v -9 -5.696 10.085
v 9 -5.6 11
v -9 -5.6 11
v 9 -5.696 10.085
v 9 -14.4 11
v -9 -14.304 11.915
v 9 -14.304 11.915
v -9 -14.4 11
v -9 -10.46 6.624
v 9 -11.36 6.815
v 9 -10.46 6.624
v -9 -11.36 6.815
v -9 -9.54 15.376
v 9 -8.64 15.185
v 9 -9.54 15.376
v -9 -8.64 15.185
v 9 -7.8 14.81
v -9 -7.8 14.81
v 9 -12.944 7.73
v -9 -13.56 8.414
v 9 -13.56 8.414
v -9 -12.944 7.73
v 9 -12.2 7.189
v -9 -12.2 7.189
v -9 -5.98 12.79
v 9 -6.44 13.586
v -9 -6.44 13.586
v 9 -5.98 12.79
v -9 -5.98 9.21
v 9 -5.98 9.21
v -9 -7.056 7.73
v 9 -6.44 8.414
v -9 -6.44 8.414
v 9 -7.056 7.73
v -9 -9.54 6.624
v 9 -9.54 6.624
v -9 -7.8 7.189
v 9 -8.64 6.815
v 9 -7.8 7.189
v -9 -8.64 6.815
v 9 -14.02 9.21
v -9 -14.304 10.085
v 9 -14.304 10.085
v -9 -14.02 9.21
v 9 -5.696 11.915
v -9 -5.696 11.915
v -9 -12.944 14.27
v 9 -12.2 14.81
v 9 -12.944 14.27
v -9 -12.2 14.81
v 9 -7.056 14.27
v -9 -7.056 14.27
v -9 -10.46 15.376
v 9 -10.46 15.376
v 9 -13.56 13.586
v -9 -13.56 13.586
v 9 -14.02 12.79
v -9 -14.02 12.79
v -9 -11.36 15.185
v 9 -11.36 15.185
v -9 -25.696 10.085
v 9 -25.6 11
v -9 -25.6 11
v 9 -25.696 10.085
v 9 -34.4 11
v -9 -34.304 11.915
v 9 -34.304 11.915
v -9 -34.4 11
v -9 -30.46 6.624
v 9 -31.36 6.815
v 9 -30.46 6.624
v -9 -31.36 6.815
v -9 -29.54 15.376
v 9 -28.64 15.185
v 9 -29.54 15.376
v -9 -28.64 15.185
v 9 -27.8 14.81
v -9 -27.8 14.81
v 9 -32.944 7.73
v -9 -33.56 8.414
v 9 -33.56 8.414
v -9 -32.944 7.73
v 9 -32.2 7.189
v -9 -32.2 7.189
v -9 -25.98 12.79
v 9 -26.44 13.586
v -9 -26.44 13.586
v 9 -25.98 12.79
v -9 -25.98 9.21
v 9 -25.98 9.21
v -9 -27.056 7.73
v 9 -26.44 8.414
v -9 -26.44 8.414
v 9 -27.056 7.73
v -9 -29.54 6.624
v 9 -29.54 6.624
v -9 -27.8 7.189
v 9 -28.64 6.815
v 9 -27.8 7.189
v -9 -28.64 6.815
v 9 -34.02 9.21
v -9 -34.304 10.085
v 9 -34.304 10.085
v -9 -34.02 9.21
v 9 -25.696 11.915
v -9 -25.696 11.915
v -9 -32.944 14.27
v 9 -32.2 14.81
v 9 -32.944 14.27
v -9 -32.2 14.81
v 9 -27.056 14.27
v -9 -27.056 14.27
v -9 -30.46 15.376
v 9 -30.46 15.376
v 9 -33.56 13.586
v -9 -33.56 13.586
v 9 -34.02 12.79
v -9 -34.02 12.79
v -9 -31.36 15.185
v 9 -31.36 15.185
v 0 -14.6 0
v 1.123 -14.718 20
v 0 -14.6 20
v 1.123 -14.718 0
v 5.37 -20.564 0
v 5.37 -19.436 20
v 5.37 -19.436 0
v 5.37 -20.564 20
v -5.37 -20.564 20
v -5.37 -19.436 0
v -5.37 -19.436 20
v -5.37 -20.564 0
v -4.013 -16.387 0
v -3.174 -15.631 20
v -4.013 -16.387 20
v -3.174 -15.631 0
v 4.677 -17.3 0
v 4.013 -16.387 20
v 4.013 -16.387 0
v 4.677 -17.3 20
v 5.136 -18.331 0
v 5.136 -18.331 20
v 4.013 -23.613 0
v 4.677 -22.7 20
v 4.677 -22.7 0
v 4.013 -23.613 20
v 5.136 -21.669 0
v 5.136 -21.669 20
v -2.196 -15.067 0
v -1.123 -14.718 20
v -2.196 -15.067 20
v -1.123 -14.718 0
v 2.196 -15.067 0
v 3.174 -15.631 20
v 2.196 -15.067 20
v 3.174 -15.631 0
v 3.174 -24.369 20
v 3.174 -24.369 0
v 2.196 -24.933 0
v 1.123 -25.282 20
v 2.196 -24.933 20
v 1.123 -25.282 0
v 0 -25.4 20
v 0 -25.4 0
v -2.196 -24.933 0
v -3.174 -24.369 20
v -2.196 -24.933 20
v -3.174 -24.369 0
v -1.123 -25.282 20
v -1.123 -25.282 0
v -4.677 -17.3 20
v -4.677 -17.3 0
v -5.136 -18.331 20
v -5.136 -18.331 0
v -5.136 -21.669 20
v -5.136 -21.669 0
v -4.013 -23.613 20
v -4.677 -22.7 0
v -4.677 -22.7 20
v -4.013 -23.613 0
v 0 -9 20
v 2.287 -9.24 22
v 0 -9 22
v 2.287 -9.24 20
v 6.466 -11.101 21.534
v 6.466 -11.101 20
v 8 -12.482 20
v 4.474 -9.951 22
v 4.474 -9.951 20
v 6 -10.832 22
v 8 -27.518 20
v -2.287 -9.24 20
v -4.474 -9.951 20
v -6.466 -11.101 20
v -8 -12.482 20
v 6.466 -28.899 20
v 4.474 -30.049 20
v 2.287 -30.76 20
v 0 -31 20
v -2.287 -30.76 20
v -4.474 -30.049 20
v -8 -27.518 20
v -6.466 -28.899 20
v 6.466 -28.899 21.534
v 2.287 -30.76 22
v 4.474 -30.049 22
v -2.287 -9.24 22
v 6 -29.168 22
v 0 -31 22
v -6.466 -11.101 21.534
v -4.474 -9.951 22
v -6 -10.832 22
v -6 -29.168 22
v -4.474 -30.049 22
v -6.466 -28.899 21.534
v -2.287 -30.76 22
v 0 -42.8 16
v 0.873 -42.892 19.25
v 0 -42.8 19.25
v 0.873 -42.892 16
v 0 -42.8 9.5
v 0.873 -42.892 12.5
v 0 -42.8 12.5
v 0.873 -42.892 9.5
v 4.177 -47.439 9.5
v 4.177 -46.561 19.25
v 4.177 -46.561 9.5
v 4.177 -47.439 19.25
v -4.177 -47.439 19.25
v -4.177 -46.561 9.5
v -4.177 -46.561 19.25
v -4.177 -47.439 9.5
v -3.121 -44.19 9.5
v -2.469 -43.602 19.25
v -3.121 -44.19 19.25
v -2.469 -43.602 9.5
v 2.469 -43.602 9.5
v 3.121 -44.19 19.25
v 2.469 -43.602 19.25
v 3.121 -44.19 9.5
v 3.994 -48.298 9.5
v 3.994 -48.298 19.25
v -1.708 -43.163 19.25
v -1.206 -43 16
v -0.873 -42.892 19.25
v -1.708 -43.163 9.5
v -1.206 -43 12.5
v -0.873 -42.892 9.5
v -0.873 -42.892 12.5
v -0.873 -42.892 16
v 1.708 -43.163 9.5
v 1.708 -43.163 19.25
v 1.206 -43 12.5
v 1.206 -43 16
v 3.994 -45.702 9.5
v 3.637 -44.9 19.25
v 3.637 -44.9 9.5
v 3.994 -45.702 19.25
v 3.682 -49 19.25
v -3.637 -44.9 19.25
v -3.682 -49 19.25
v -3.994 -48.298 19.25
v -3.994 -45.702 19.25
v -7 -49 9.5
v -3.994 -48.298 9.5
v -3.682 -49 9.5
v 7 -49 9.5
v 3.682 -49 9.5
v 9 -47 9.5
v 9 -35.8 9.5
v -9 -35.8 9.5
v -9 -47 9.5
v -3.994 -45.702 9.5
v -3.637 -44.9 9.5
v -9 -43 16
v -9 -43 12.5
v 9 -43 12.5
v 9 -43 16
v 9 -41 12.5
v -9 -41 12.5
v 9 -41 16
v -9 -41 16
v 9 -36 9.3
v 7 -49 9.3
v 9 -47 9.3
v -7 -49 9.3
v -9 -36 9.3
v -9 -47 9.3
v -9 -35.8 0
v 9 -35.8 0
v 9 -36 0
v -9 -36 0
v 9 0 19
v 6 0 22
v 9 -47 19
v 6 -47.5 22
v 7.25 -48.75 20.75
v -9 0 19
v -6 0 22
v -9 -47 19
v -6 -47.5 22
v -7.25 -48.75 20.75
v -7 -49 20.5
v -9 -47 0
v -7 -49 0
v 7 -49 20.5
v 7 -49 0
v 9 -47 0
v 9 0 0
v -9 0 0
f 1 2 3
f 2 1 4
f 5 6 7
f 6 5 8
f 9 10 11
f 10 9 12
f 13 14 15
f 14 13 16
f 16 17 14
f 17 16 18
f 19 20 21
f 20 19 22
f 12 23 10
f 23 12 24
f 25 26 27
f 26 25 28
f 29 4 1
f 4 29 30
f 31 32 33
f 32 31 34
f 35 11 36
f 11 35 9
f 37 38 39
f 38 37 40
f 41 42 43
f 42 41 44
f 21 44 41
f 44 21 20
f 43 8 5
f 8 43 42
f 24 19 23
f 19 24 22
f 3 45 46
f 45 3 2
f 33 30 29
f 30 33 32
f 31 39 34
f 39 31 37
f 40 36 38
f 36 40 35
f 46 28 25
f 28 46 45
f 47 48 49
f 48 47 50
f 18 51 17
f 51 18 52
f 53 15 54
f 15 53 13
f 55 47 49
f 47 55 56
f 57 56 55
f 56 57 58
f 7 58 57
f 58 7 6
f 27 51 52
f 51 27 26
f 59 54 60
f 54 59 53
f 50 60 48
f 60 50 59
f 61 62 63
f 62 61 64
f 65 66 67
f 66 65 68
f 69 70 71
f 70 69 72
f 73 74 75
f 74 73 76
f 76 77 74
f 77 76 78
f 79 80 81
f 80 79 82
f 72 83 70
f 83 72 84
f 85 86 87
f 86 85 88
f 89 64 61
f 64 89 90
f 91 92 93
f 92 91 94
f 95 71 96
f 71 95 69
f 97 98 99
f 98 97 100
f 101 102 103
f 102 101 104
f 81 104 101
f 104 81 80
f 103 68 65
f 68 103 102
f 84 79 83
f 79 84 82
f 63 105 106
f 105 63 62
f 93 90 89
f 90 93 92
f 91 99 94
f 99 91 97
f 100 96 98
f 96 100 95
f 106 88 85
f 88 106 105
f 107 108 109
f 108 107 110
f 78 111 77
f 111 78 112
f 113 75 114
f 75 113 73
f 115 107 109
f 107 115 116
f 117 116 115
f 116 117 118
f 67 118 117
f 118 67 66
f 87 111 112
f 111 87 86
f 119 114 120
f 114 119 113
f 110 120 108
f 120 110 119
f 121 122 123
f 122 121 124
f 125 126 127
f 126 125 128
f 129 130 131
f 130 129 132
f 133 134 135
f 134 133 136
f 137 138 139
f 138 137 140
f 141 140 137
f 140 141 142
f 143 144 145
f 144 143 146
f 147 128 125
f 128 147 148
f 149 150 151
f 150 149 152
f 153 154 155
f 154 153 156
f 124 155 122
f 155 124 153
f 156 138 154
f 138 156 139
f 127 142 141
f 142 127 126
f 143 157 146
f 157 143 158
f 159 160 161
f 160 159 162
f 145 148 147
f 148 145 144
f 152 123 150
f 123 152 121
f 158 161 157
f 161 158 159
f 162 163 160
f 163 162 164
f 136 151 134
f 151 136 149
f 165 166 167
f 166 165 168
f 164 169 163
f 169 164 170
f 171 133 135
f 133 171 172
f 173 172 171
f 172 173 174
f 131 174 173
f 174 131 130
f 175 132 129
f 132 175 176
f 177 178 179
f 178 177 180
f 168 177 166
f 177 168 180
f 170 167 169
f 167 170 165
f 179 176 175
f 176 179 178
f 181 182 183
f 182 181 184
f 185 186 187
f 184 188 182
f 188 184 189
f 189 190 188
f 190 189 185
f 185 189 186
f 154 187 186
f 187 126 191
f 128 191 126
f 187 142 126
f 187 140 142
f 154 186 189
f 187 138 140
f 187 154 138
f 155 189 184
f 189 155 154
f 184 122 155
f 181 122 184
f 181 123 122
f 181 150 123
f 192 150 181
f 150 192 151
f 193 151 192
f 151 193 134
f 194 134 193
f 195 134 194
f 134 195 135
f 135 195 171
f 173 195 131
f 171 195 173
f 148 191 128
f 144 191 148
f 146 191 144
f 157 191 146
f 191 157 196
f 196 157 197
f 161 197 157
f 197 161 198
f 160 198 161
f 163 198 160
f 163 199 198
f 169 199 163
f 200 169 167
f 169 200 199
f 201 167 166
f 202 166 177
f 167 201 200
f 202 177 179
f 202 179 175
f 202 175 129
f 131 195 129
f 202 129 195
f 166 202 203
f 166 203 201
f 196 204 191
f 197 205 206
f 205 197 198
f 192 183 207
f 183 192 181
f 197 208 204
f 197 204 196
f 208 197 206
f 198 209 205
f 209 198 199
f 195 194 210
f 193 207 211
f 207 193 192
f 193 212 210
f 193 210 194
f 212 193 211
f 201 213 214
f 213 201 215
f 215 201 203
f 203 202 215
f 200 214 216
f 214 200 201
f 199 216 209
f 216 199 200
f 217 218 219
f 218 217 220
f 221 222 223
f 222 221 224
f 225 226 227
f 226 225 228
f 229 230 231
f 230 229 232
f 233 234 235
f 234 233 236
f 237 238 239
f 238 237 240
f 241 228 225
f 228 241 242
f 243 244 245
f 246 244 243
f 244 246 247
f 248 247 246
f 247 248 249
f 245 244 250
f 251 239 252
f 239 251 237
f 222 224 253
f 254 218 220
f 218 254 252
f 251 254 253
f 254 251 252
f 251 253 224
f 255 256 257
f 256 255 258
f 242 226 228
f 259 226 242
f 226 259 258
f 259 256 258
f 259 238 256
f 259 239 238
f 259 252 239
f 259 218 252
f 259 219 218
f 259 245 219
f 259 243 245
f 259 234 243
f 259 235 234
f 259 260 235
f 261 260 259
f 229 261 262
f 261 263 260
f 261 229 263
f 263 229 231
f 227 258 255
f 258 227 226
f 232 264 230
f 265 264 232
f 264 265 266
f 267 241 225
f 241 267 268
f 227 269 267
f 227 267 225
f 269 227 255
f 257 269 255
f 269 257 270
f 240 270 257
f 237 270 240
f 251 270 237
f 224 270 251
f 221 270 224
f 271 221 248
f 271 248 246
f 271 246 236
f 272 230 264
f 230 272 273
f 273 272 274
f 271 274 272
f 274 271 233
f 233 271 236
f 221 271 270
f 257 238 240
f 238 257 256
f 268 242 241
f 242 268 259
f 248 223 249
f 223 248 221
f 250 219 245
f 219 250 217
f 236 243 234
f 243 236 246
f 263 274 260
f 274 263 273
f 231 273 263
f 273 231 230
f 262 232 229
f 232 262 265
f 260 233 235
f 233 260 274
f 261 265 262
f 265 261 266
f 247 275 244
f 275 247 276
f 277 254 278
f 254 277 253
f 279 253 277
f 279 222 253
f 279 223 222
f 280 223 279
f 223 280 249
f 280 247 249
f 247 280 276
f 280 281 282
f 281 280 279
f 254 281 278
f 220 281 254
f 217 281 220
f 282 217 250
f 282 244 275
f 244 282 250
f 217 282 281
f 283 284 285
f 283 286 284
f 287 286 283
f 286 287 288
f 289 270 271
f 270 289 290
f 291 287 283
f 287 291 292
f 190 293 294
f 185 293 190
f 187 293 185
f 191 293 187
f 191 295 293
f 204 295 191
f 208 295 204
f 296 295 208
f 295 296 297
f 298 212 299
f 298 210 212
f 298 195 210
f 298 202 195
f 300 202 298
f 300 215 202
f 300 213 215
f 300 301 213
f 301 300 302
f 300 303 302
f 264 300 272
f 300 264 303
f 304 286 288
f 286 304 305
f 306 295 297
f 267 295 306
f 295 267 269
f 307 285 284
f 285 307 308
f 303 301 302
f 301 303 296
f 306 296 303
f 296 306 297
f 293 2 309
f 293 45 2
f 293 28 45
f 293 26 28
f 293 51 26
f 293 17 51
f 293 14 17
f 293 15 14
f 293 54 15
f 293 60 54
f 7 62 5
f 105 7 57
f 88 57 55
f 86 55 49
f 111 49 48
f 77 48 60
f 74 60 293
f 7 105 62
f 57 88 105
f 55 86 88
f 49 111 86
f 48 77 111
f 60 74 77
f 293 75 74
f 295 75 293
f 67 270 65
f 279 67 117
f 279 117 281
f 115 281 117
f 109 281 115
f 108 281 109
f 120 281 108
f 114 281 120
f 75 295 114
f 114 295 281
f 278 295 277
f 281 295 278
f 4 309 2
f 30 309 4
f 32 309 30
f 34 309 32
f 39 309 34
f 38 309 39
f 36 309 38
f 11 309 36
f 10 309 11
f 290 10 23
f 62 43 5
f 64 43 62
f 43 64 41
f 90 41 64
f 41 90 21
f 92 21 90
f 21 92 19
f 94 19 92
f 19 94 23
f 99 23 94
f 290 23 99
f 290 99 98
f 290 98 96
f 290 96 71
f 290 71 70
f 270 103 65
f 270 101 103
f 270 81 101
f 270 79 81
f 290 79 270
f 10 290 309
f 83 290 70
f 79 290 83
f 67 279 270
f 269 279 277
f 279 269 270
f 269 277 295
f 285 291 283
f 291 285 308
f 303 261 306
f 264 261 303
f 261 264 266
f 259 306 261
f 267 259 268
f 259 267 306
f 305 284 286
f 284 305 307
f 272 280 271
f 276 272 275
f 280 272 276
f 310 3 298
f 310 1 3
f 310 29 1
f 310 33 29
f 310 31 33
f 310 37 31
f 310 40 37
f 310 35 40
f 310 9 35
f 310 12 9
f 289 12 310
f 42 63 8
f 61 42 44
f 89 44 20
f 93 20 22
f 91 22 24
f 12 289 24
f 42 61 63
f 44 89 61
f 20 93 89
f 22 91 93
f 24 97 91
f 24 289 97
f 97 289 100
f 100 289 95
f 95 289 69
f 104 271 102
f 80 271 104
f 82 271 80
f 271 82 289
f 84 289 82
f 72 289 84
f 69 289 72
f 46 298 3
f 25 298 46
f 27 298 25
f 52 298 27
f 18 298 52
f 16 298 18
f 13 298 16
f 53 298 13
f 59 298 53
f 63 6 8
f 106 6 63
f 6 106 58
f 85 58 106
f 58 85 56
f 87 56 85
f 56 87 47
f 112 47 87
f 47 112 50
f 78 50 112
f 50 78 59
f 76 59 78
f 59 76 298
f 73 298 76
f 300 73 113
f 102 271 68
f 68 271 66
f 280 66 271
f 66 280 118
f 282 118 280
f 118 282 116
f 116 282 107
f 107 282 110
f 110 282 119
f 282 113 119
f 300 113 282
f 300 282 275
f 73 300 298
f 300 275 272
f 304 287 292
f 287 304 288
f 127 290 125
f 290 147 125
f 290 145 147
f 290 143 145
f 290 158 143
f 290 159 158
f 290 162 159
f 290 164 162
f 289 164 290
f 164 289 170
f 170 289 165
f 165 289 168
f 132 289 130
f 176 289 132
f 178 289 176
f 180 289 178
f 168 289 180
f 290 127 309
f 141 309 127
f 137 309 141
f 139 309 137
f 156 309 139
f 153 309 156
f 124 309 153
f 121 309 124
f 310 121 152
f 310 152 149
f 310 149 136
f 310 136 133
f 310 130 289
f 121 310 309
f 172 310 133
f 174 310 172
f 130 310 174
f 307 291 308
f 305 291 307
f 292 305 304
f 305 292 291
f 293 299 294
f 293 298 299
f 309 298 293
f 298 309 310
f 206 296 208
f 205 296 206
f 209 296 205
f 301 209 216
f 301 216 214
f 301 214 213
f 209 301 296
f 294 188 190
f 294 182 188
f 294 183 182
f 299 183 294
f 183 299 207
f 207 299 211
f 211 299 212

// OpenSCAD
//Carbon i3 Modified

// PRUSA iteration3
// Y frame corners
// GNU GPL v3
// Josef Průša <iam@josefprusa.cz> and contributors
// http://www.reprap.org/wiki/Prusa_Mendel
// http://prusamendel.org


module corner_base(){	
 translate([-9,-11,0])cube([18,22,49]);
}

module corner_holes(){
 translate([-11,-11,0]){
  // Bottom hole
  translate([0,11,10]) rotate([0,90,0]) translate([0,0,-5]) cylinder(h = 270, r=4.4, $fn=30);
  // Top hole
  translate([0,11,30]) rotate([0,90,0]) translate([0,0,-5]) cylinder(h = 270, r=4.4, $fn=30);
  // Middle hole
  translate([11,0,20]) rotate([0,0,90]) rotate([0,90,0]) translate([0,0,-5]) cylinder(h = 270, r=5.4, $fn=30);

  // Washer hole
  translate([11,-3,20]) rotate([0,0,90]) rotate([0,90,0]) translate([0,0,-5]) cylinder(h = 10, r=11, $fn=30);

  // Top smooth rod insert
  // Smooth rod place
  translate([11,2.75,47]) rotate([0,90,90]) cylinder(h = 9.75, r=4.2, $fn=30); 
  // Ziptie
  translate([-5,6,41])  cube([30,3.5,2]);
  
  // LM8UU keepout
  //difference(){
    //translate([11,12.5,46]) rotate([0,90,90]) cylinder(h = 270, r=8, //$fn=30);
    //translate([21,12.5,62]) rotate([0,90,90]) cube([20,20,30]);
  //} 
   //translate([21,12.5,62-0.2]) rotate([0,90,90]) cube([20,20,0.2]);
   //translate([21,12.5,42]) rotate([0,90,90]) cube([0.2,20,30]);
   translate([21,12.5,56-0.2]) rotate([0,90,90]) cube([20,20,0.2]);
   translate([21,12.5,36]) rotate([0,90,90]) cube([0.2,20,30]);
  
  //translate([21,12.5,56-0.2]) rotate([0,90,90]) cube([20,20,10.2]); // to supress the suport     
 }
}

module corner_fancy(){
 // Side corner cutouts
  translate([-8,-9,0]) rotate([0,0,-45-180]) translate([-15,0,-1]) cube([30,30,51]);
  translate([8,-9,0]) rotate([0,0,45-180]) translate([-15,0,-1]) cube([30,30,51]);
 // Top corner cutouts
  translate([7,0,49]) rotate([0,45,0]) translate([-15,-15,0]) cube([30,30,30]);
  translate([-7,0,49]) rotate([0,-45,0]) translate([-15,-15,0]) cube([30,30,30]);
  rotate([0,0,90]){
   translate([-9.5,0,49]) rotate([0,-45,0]) translate([-15,-15,0]) cube([30,30,30]);
  }
}


// Final part
module corner(){
 // Rotate the part for better printing
 translate([0,0,11]) rotate([-90,0,0]) difference(){
  corner_base();
  corner_holes();
  corner_fancy();
 }
}

rotate([180,180,0]) corner();
